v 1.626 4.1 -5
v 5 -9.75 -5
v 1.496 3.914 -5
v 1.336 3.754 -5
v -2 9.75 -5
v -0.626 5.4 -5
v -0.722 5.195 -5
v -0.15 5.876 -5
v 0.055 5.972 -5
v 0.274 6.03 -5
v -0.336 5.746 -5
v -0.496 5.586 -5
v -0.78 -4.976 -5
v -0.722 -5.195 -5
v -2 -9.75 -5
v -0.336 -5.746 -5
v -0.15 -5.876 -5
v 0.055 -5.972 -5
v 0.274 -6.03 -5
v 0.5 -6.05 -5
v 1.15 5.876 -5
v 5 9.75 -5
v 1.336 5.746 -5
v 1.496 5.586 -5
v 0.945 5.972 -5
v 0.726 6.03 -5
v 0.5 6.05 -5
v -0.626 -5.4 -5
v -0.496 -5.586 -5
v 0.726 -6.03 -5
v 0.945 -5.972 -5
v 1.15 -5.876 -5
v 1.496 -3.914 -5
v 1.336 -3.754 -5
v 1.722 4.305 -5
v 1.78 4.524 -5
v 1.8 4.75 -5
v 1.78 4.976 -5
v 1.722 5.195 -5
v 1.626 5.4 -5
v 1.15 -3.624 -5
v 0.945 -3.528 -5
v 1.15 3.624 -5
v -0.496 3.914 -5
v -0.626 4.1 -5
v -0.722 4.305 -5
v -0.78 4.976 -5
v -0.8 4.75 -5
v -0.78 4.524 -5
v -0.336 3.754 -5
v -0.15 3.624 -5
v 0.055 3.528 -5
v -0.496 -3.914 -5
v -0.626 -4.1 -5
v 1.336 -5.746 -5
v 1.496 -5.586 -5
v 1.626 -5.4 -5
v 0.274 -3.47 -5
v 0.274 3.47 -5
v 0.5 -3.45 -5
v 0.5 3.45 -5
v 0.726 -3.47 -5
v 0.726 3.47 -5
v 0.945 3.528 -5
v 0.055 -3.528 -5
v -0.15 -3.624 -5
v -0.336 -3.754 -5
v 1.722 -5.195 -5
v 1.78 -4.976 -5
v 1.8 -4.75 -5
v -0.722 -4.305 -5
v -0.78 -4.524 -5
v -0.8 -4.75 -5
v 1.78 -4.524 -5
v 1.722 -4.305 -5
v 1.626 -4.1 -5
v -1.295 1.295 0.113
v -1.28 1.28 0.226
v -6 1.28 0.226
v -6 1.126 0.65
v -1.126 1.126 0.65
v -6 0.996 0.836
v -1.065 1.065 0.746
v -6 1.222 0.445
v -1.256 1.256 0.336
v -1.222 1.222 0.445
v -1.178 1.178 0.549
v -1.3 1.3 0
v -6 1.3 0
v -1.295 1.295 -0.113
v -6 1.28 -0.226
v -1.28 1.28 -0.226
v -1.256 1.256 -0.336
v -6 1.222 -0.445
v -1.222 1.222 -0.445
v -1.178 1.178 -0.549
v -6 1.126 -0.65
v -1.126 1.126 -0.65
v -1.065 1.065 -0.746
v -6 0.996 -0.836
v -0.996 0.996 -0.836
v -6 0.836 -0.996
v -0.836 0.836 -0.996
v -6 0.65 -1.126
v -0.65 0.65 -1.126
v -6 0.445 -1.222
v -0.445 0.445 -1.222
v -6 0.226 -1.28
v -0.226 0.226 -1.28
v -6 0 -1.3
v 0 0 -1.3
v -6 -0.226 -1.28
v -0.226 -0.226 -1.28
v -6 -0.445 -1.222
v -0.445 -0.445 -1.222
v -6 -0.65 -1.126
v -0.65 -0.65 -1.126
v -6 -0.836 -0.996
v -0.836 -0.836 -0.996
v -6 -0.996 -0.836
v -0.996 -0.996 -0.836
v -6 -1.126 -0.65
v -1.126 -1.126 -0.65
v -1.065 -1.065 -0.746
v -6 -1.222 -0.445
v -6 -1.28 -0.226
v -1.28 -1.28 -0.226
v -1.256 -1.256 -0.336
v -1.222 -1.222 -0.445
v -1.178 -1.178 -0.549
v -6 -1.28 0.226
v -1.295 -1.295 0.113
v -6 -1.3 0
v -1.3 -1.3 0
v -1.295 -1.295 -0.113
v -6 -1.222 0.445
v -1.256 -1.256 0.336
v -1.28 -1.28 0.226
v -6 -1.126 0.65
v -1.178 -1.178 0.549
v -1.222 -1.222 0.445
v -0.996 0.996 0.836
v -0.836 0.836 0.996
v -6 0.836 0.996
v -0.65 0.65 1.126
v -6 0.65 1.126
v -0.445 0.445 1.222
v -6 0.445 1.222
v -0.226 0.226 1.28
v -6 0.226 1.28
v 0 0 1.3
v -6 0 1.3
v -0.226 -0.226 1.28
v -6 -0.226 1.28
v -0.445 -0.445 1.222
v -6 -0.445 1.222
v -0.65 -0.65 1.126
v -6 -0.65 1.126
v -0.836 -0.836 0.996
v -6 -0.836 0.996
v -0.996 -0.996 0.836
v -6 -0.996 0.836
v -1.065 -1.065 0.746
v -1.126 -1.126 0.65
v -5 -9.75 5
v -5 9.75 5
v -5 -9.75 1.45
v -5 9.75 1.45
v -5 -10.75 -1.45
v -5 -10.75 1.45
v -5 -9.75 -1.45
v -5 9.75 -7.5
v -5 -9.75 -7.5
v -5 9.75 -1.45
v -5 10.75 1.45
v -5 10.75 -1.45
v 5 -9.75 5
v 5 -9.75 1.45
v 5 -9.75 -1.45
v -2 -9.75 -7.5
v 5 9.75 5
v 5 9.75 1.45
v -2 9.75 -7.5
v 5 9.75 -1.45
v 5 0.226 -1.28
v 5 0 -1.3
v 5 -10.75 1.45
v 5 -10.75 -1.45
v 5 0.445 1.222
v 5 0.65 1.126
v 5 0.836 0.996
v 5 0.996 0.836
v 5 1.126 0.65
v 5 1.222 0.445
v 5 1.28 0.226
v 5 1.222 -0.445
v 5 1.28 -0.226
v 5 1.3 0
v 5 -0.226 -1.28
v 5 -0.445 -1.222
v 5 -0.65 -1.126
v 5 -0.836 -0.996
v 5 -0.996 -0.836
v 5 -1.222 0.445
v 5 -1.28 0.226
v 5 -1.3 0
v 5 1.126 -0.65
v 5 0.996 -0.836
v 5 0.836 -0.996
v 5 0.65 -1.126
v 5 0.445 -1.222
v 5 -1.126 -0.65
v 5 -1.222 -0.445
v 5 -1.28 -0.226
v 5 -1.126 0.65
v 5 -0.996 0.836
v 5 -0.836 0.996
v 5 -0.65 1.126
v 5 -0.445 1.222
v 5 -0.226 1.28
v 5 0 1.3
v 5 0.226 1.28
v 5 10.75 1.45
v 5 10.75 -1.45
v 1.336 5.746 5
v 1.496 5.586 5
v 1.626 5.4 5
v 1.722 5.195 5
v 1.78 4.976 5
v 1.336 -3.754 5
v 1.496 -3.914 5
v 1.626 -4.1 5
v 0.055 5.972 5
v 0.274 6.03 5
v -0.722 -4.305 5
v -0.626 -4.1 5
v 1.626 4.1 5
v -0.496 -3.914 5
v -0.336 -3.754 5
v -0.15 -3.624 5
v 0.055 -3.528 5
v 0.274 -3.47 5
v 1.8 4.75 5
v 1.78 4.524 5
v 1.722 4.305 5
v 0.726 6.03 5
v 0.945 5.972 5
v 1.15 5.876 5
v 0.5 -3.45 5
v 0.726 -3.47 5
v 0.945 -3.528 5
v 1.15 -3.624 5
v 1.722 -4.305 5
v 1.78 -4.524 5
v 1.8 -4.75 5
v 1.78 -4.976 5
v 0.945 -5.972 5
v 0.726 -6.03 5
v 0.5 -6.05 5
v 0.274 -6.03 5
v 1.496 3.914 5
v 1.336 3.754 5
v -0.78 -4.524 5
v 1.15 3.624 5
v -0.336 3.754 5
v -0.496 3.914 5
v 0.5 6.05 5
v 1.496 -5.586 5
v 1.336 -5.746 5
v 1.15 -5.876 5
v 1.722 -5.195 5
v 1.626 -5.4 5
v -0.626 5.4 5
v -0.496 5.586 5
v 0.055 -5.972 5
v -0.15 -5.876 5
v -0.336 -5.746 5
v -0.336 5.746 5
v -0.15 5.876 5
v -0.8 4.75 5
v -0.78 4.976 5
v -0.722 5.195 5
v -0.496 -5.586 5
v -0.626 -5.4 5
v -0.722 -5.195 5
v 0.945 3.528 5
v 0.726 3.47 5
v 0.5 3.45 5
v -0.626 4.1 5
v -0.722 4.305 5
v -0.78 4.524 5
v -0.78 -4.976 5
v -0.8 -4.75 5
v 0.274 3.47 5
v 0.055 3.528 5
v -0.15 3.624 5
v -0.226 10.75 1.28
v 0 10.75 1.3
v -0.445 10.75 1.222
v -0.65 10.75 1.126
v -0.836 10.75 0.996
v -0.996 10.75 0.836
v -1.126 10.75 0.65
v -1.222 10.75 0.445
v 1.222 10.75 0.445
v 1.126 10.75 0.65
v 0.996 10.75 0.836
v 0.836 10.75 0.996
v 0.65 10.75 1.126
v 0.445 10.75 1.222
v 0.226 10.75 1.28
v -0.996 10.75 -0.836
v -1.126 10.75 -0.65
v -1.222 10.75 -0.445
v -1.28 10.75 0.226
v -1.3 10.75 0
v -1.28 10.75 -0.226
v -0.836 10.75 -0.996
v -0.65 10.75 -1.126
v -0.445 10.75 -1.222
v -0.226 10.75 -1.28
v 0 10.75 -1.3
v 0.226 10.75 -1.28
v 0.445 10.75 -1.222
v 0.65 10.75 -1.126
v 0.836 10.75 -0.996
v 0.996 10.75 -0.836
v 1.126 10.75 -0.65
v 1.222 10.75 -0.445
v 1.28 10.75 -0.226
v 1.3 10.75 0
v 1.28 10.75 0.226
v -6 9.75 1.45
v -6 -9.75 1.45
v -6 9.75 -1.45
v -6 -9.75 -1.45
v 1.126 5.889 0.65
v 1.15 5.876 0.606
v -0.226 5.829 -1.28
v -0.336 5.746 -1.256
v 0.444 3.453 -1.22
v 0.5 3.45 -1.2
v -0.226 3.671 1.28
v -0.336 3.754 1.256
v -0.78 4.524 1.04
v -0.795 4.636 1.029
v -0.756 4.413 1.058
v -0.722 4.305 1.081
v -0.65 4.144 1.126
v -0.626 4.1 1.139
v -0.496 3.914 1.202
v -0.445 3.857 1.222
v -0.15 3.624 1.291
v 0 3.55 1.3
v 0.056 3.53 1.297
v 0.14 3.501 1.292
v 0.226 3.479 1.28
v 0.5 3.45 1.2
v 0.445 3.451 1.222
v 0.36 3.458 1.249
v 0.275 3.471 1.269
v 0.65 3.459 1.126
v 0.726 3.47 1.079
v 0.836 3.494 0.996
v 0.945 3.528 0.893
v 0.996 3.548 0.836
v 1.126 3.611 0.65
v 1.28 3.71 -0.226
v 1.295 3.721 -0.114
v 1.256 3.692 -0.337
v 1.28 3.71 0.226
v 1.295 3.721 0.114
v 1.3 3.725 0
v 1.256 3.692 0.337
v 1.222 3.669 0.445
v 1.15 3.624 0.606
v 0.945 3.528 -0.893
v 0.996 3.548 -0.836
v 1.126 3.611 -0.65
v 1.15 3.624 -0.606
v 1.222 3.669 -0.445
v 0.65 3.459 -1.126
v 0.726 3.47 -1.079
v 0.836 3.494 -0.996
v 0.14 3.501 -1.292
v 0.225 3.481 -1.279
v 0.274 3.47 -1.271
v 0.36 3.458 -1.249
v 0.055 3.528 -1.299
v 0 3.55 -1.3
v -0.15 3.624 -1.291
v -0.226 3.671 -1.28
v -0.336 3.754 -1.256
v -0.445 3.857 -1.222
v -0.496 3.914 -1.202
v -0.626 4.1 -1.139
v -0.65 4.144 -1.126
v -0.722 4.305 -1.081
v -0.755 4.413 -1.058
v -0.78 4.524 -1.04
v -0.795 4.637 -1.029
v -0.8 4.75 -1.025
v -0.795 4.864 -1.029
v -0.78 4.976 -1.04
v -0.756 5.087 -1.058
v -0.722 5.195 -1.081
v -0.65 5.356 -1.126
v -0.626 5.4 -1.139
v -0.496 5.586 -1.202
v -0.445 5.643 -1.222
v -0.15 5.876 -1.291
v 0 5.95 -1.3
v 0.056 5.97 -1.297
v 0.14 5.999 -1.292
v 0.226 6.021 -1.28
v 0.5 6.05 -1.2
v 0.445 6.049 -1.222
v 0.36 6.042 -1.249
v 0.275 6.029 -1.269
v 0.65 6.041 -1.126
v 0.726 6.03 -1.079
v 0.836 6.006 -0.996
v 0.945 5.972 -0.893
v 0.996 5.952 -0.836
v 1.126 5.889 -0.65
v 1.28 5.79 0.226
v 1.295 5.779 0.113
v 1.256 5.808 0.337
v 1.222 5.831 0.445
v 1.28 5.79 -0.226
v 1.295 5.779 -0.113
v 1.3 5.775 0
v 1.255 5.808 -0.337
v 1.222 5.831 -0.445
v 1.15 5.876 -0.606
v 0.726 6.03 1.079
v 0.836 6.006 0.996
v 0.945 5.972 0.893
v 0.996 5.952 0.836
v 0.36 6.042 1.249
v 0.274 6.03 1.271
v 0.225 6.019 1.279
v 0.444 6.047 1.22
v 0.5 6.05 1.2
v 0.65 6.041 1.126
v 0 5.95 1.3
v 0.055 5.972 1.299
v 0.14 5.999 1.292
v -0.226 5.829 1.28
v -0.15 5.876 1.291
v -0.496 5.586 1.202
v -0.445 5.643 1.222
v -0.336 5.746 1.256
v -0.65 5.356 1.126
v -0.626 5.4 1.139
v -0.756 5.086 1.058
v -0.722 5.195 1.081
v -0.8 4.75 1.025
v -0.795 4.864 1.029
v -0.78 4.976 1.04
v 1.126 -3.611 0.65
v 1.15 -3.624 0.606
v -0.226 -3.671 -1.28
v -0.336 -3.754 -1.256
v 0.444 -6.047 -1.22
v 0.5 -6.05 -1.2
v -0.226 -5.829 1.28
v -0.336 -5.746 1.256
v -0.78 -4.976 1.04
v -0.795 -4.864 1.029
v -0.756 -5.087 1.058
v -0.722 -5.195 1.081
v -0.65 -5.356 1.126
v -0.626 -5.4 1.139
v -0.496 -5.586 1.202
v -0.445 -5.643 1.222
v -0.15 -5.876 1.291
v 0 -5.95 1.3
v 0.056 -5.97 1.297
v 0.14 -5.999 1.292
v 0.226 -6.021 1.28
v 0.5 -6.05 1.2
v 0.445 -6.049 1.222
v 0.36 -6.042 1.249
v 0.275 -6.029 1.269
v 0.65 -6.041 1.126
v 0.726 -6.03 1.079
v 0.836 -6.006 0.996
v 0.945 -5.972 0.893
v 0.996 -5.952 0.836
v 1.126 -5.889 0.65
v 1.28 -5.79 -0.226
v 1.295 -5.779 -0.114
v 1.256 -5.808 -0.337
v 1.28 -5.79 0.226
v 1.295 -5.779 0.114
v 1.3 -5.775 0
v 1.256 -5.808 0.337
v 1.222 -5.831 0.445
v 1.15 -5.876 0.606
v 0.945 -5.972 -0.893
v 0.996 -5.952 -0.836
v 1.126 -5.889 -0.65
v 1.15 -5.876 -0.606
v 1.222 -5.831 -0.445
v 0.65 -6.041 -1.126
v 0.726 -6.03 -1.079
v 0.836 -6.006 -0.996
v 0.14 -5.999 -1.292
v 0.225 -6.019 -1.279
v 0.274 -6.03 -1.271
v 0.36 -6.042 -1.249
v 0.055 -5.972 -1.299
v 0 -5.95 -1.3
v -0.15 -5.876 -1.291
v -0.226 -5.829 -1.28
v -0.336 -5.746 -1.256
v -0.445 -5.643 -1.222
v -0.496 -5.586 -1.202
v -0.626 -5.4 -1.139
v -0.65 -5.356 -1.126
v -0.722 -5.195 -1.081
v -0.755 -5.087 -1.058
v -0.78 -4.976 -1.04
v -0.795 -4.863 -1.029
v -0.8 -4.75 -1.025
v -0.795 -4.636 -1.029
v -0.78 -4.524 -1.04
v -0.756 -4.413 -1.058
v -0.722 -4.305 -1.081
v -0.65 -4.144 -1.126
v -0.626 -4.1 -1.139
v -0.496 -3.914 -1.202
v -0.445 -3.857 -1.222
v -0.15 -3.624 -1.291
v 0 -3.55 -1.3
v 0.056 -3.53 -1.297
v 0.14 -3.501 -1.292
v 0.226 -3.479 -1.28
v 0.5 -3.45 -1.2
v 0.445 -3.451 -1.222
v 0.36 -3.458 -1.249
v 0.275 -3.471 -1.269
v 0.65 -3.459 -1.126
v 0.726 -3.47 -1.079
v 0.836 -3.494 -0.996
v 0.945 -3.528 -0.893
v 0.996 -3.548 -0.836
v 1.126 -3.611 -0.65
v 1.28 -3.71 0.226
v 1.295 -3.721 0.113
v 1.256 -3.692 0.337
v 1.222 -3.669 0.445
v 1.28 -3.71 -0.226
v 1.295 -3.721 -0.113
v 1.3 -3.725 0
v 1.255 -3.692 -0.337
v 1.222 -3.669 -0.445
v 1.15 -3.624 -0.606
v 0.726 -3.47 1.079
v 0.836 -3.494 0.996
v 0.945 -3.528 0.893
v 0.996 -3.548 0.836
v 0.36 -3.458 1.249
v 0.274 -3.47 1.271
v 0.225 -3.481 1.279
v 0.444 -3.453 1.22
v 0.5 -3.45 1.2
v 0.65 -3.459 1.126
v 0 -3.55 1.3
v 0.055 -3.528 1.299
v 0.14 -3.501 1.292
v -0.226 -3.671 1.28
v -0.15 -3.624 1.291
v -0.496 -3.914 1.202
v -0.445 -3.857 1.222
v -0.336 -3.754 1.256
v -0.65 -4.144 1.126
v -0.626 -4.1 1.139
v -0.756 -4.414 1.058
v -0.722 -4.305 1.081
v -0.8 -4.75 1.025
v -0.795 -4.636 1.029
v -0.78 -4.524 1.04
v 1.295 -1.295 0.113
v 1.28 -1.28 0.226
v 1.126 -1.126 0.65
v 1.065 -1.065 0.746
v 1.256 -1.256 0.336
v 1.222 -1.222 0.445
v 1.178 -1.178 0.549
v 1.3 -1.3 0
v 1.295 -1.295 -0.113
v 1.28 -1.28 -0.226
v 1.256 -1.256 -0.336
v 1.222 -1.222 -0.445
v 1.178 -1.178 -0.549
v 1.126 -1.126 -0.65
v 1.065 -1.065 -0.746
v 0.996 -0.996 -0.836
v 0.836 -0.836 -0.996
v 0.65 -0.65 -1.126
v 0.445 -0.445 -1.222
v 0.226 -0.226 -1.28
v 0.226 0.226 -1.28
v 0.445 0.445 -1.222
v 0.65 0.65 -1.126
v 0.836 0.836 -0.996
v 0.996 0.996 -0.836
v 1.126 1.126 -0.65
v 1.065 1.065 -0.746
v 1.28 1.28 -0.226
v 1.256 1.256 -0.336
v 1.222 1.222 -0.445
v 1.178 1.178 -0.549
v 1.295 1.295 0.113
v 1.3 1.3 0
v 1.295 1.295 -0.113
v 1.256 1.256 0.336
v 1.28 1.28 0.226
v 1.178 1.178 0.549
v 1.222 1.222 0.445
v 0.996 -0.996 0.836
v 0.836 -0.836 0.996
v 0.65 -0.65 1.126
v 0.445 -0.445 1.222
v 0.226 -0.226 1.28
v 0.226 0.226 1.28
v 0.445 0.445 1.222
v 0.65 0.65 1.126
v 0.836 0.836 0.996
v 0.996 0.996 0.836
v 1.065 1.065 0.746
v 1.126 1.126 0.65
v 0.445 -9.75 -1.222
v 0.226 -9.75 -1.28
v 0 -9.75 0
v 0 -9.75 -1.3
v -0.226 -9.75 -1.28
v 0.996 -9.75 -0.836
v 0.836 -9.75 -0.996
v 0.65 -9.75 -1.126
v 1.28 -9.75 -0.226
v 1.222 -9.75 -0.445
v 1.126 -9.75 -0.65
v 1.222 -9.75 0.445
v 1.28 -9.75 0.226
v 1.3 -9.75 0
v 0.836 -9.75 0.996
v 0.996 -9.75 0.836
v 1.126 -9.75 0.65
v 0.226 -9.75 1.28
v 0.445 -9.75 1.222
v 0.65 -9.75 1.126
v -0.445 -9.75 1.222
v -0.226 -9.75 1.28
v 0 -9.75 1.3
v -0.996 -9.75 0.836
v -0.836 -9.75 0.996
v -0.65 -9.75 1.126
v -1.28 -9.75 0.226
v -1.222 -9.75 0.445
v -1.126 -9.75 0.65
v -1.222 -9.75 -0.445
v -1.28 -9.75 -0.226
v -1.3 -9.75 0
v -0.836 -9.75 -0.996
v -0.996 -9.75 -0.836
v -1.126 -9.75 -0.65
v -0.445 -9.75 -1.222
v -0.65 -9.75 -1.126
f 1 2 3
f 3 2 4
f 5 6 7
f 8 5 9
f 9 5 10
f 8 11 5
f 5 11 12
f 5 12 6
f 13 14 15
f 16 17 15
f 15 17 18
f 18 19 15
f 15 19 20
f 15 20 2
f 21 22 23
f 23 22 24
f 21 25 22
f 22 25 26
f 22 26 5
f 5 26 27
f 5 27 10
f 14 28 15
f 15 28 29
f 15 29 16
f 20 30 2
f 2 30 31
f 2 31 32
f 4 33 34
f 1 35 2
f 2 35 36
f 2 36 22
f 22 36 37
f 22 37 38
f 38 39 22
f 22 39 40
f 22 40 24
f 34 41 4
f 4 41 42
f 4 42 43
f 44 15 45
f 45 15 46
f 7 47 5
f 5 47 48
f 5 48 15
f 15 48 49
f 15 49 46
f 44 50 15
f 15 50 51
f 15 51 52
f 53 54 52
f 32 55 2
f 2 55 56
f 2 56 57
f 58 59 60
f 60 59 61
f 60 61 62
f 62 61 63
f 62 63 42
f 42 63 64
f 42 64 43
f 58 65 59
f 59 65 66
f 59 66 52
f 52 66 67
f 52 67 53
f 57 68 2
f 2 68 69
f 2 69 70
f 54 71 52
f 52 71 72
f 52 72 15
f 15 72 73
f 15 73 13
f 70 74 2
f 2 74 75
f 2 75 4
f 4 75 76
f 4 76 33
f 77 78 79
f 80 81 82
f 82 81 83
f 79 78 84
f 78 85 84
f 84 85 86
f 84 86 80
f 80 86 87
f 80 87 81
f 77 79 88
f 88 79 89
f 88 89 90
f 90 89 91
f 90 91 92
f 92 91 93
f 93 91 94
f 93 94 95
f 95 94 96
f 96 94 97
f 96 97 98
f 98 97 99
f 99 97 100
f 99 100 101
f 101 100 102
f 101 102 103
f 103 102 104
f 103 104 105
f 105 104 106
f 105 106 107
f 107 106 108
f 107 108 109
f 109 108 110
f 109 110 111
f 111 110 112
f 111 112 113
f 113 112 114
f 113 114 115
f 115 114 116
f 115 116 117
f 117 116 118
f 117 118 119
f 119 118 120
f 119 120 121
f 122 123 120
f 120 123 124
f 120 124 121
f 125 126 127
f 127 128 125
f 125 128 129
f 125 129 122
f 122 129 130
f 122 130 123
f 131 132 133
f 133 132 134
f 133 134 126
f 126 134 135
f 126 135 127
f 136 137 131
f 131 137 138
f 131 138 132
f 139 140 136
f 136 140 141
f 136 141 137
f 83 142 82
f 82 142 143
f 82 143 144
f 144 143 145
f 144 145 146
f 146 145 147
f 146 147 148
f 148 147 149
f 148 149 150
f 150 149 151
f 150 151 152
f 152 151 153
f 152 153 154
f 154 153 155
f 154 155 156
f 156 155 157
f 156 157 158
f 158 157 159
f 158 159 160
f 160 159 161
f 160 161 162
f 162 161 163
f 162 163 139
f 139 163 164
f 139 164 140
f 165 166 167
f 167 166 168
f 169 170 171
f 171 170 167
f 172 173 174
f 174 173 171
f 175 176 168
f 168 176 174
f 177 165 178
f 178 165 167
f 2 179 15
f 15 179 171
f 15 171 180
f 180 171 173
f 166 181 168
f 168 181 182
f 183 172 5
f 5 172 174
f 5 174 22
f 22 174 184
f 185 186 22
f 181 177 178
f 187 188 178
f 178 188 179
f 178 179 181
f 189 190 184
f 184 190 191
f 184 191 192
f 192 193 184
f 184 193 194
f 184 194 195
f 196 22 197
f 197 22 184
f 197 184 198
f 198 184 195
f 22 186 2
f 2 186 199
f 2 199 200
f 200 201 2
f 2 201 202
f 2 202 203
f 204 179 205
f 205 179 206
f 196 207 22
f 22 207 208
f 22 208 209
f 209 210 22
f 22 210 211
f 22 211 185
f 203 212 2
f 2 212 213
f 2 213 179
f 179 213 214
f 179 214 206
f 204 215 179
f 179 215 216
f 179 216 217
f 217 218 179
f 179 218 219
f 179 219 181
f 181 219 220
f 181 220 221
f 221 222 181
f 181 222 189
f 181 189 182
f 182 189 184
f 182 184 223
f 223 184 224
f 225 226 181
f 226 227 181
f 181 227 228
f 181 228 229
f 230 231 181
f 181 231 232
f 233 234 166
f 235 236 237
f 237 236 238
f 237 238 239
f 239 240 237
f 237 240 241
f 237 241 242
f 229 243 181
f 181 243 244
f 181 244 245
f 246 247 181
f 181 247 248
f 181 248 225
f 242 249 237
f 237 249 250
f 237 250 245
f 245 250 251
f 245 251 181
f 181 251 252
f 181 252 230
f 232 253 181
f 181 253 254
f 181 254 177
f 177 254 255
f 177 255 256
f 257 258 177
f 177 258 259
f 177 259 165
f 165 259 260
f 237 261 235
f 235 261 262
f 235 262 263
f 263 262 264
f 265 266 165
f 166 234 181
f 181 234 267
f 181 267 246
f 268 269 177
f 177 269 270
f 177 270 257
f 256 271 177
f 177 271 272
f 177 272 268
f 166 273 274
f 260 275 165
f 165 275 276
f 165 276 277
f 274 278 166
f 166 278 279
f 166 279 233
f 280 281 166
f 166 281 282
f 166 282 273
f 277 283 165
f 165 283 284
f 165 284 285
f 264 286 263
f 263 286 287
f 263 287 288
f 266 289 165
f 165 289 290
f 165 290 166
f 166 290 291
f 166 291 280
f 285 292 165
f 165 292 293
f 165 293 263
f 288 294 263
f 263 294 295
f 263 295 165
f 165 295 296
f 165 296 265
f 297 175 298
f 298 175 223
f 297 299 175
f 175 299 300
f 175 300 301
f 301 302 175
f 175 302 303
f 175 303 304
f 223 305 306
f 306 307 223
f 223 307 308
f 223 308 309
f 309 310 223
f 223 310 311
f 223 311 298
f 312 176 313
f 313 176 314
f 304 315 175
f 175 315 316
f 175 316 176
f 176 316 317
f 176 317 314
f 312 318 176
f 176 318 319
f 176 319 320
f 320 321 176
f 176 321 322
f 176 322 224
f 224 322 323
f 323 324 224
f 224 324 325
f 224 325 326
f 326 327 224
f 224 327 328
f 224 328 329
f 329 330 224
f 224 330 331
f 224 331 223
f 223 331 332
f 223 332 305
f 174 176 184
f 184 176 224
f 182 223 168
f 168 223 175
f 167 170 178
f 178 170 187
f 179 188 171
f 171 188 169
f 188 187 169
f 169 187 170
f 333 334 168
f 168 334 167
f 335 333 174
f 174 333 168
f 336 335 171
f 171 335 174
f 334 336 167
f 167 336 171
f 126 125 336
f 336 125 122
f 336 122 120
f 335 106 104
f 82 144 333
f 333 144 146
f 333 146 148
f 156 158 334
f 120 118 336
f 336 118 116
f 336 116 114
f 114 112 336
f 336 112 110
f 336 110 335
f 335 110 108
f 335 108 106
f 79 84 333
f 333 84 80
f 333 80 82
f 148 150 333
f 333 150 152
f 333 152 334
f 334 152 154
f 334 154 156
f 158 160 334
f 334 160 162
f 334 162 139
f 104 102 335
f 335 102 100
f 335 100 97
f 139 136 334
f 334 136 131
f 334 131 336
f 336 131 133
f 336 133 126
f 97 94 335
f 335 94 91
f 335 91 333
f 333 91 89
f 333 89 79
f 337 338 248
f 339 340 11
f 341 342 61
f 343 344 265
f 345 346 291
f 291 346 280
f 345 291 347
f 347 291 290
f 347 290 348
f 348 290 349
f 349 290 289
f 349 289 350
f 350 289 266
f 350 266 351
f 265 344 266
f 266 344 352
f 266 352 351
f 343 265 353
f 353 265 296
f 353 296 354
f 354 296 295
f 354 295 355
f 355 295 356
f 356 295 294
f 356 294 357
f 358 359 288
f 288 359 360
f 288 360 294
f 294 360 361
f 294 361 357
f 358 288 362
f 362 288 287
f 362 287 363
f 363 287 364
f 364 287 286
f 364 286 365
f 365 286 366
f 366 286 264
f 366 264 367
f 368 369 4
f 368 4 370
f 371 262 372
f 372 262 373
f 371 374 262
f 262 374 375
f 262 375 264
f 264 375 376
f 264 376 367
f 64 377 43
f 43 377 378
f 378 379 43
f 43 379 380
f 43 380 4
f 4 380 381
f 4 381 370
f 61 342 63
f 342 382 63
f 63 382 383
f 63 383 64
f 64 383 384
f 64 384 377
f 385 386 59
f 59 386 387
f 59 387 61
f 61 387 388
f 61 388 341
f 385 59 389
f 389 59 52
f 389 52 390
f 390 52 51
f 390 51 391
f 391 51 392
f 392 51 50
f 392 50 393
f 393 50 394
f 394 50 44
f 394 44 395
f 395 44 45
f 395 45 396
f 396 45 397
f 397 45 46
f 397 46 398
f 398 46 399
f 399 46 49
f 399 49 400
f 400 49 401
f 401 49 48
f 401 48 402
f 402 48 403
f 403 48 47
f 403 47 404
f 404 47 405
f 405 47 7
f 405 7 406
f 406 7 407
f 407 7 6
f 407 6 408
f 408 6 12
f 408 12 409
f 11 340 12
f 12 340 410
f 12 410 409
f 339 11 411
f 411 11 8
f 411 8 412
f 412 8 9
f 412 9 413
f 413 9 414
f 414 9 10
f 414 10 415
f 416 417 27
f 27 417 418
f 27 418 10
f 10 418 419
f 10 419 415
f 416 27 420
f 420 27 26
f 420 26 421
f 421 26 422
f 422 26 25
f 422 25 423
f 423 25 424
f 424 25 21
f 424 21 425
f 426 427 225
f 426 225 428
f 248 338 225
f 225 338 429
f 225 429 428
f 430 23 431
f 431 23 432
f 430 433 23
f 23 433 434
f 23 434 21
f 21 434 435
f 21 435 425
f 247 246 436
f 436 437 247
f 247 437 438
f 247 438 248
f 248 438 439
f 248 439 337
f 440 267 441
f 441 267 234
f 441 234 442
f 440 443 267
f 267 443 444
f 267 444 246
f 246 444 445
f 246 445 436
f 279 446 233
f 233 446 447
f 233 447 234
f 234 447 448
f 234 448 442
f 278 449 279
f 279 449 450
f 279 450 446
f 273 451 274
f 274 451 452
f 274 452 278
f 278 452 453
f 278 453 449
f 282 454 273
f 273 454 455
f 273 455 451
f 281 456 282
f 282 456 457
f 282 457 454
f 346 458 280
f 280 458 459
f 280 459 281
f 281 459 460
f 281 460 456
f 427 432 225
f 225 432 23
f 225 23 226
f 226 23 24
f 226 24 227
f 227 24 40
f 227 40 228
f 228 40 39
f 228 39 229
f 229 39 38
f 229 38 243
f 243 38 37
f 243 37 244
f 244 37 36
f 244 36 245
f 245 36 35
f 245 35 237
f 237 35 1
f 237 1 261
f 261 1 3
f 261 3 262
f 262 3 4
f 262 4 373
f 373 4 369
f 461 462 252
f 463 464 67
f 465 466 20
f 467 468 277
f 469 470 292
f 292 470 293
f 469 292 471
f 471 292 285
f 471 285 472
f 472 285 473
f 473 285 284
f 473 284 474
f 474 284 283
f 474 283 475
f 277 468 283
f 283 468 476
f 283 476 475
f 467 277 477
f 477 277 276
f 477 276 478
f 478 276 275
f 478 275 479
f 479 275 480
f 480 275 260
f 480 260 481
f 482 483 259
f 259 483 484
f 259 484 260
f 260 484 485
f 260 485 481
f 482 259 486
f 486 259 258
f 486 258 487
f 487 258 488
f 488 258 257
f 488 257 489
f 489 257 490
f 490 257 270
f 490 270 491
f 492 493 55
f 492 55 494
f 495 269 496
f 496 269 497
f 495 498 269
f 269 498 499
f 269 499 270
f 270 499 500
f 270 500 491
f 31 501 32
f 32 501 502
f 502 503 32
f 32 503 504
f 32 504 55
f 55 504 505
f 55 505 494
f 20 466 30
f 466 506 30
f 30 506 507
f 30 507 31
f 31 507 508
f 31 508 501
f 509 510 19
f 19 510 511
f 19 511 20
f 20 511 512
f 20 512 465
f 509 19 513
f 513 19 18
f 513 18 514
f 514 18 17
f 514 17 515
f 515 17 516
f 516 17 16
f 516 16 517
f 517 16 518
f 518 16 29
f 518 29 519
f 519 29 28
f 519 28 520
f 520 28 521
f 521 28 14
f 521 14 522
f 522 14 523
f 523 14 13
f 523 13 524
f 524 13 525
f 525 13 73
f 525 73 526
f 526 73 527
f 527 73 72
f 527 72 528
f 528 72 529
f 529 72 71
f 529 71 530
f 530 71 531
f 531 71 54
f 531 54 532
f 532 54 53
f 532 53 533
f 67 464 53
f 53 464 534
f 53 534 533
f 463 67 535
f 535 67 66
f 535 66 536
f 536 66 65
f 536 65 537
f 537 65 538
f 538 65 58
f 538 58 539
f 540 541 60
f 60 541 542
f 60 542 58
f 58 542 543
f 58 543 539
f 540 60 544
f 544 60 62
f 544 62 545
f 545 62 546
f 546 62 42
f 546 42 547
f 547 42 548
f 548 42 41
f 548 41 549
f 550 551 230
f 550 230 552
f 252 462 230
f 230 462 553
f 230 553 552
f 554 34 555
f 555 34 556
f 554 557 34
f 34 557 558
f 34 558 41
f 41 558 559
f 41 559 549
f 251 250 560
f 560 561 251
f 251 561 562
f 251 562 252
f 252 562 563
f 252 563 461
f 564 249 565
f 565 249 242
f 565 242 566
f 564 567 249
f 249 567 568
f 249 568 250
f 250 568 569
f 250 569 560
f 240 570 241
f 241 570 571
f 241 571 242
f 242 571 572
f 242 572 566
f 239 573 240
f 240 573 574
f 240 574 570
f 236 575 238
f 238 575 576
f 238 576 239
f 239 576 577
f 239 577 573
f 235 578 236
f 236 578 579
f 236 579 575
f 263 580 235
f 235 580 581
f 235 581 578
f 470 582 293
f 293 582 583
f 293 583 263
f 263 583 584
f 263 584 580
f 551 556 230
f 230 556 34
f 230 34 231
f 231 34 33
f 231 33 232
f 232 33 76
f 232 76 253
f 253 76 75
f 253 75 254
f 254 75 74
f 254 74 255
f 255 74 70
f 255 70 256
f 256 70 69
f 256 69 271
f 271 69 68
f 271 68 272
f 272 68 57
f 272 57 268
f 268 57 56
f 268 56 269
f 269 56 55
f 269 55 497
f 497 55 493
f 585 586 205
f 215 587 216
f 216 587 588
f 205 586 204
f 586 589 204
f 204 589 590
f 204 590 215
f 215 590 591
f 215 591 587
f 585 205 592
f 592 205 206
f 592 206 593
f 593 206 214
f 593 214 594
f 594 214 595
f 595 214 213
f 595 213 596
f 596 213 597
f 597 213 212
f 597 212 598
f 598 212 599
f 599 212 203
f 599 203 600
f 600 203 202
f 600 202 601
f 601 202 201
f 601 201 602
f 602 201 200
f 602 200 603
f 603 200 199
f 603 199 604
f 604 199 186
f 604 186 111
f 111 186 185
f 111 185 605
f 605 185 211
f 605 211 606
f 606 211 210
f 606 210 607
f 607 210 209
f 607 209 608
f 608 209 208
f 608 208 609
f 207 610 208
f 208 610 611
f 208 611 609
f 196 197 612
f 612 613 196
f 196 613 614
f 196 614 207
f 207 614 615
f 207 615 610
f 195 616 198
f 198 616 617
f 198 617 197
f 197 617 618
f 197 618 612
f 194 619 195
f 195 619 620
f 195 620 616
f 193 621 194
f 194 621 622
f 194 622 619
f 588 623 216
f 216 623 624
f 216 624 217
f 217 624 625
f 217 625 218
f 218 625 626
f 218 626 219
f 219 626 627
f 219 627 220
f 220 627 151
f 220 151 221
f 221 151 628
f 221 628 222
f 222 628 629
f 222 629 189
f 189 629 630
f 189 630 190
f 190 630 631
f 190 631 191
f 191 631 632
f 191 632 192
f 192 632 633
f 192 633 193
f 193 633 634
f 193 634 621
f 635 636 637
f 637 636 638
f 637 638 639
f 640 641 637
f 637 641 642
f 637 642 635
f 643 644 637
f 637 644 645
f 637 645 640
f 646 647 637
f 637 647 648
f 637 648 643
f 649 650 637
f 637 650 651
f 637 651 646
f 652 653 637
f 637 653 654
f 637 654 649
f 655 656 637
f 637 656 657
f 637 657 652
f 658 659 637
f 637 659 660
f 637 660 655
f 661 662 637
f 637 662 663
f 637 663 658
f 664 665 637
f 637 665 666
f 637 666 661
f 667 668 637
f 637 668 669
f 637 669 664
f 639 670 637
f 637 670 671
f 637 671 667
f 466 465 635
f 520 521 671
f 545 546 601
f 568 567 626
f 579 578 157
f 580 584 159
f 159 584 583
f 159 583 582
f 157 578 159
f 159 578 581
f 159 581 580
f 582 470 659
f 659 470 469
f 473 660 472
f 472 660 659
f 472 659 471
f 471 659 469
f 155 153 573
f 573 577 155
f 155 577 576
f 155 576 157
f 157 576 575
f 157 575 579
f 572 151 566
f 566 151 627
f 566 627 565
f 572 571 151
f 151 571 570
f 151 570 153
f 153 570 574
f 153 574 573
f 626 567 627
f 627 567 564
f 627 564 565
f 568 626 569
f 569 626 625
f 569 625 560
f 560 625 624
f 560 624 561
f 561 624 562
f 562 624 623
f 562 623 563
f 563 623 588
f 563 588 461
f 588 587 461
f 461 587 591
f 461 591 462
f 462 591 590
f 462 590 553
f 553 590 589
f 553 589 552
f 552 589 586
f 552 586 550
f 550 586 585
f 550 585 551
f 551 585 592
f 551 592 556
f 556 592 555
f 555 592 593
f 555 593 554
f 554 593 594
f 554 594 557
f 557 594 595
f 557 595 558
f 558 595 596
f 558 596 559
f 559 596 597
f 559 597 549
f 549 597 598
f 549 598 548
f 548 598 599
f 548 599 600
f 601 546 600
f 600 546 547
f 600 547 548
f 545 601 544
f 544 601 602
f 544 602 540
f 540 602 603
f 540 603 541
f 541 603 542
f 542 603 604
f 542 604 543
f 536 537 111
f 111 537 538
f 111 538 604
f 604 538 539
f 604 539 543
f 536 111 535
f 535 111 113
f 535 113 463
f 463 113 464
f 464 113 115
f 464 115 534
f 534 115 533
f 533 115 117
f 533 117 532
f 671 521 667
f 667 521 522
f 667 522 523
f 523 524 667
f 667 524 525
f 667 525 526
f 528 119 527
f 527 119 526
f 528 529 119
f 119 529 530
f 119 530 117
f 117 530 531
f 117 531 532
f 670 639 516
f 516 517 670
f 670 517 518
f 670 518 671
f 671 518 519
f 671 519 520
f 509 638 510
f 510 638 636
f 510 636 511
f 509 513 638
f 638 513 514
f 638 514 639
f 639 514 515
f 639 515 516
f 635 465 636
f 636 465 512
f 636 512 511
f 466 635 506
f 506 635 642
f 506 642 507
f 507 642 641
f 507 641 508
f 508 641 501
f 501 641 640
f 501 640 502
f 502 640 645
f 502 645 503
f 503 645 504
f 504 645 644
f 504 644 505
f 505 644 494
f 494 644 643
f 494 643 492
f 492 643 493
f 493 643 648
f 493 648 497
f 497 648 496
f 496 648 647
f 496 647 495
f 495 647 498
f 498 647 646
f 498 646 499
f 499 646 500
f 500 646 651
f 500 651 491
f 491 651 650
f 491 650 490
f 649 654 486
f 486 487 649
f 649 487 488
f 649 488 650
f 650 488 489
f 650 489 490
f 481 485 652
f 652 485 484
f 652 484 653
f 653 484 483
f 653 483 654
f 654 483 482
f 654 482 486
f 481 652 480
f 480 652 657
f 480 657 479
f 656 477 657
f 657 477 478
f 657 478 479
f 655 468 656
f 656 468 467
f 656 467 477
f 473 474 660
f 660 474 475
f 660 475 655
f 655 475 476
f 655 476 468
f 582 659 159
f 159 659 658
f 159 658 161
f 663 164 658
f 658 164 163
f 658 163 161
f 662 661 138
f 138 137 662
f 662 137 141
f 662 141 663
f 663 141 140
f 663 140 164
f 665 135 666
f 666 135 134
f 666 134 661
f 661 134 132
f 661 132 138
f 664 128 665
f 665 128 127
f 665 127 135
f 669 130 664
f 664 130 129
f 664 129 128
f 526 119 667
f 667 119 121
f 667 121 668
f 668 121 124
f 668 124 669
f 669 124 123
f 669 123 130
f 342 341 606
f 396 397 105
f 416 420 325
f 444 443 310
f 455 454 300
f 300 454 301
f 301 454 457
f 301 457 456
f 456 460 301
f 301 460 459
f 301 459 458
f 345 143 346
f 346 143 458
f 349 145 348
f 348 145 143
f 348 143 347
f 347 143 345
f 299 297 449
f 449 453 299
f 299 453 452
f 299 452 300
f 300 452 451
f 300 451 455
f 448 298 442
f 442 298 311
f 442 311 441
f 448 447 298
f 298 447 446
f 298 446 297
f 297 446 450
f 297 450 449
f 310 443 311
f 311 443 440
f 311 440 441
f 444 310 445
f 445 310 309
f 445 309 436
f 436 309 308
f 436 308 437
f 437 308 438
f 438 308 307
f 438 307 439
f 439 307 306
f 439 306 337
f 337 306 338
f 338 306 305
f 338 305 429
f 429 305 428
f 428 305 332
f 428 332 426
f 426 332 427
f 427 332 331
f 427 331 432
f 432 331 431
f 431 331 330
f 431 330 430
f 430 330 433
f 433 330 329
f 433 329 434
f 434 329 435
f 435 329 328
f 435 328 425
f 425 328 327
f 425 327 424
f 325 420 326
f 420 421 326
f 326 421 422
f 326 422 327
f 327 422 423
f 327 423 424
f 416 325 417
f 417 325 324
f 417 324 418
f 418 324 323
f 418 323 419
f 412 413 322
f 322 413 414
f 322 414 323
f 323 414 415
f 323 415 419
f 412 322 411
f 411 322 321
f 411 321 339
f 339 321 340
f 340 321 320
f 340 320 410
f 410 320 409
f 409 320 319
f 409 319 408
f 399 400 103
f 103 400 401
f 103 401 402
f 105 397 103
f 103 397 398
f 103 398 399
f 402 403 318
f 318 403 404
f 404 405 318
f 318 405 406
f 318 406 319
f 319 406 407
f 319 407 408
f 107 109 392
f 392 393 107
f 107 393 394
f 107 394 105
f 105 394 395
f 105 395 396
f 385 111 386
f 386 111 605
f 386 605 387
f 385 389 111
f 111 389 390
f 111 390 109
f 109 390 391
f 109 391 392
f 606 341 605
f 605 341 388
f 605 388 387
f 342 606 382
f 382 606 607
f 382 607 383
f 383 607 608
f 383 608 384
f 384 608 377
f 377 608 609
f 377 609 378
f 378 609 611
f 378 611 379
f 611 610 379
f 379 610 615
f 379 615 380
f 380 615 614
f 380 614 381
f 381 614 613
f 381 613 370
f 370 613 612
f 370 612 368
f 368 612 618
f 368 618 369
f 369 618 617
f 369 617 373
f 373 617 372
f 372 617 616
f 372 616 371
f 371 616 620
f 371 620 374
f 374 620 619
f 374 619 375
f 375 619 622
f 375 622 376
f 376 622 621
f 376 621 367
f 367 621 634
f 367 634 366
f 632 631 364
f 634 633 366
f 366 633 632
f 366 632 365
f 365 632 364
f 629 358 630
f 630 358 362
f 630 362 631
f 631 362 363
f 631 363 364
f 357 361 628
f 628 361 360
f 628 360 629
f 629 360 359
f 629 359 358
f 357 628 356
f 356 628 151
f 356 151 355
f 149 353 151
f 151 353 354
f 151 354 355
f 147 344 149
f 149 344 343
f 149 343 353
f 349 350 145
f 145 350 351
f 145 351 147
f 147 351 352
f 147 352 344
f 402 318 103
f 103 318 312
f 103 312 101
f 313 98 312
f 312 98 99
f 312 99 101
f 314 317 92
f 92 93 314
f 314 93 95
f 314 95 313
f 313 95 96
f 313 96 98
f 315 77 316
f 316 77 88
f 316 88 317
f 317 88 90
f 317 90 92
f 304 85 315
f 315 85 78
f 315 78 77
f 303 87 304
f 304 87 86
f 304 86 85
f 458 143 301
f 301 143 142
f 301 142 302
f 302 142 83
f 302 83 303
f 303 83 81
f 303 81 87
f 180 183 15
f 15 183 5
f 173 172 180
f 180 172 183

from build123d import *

# Parameters (mm, degrees)
ESQUISSE1_W                = 10
ESQUISSE1_H                = 19.5
MAIN_DEPTH                 = 5
SKETCH2_W                  = 10
SKETCH2_H                  = 2.9
MAKERBEAMSIDESUPPORT_DEPTH = 10.75
SKETCH3_W                  = 2.9
SKETCH3_H                  = 19.5
MAKERBEAMTOPSUPPORT_DEPTH  = 1
ESQUISSE2_R                = 1.3
SERVOFIXINGHOLES_DEPTH     = 10
ESQUISSE3_R                = 1.3
SIDEHOLES_DEPTH            = 2
SIDEHOLES_DEPTH_BACK       = 11
ESQUISSE4_R                = 1.3
TOPHOLES_DEPTH             = 21.5
SKETCH1_W                  = 3
SKETCH1_H                  = 19.5
BOSS_EXTRUDE1_DEPTH        = 2.5


with BuildPart() as part:
    # Esquisse1 → Main (new body, symmetric)
    with BuildSketch(Plane.XY):
        Rectangle(ESQUISSE1_W, ESQUISSE1_H)
    extrude(amount=MAIN_DEPTH, both=True)

    # Sketch2 → MakerBeamSideSupport (add, symmetric)
    with BuildSketch(Plane(origin=(0, 0, 0), x_dir=(1, 0, 0), z_dir=(0, 1, 0))):
        Rectangle(SKETCH2_W, SKETCH2_H)
    extrude(amount=MAKERBEAMSIDESUPPORT_DEPTH, both=True)

    # Sketch3 → MakerBeamTopSupport (add)
    with BuildSketch(Plane.ZY.offset(5)):
        Rectangle(SKETCH3_W, SKETCH3_H)
    extrude(amount=MAKERBEAMTOPSUPPORT_DEPTH)

    # Esquisse2 → ServoFixingHoles (cut)
    with BuildSketch(Plane(origin=(0, 0, -5), x_dir=(-1, 0, 0), z_dir=(0, 0, -1))):
        with Locations((-0.5, 4.75)):
            Circle(ESQUISSE2_R)
        with Locations((-0.5, -4.75)):
            Circle(ESQUISSE2_R)
    extrude(amount=-SERVOFIXINGHOLES_DEPTH, mode=Mode.SUBTRACT)

    # Esquisse3 → SideHoles (cut, two sides)
    with BuildSketch(Plane.ZY.offset(5)) as sideholes_sk:
        Circle(ESQUISSE3_R)
    extrude(amount=SIDEHOLES_DEPTH, mode=Mode.SUBTRACT)
    extrude(sideholes_sk.sketch, amount=-SIDEHOLES_DEPTH_BACK, mode=Mode.SUBTRACT)

    # Esquisse4 → TopHoles (cut, through all)
    with BuildSketch(Plane.XZ.offset(9.75)):
        Circle(ESQUISSE4_R)
    extrude(amount=-TOPHOLES_DEPTH, mode=Mode.SUBTRACT)

    # Sketch1 → Boss-Extrude1 (add)
    with BuildSketch(Plane(origin=(0, 0, -5), x_dir=(-1, 0, 0), z_dir=(0, 0, -1))):
        with Locations((3.5, 0)):
            Rectangle(SKETCH1_W, SKETCH1_H)
    extrude(amount=BOSS_EXTRUDE1_DEPTH)


solid = part.part
